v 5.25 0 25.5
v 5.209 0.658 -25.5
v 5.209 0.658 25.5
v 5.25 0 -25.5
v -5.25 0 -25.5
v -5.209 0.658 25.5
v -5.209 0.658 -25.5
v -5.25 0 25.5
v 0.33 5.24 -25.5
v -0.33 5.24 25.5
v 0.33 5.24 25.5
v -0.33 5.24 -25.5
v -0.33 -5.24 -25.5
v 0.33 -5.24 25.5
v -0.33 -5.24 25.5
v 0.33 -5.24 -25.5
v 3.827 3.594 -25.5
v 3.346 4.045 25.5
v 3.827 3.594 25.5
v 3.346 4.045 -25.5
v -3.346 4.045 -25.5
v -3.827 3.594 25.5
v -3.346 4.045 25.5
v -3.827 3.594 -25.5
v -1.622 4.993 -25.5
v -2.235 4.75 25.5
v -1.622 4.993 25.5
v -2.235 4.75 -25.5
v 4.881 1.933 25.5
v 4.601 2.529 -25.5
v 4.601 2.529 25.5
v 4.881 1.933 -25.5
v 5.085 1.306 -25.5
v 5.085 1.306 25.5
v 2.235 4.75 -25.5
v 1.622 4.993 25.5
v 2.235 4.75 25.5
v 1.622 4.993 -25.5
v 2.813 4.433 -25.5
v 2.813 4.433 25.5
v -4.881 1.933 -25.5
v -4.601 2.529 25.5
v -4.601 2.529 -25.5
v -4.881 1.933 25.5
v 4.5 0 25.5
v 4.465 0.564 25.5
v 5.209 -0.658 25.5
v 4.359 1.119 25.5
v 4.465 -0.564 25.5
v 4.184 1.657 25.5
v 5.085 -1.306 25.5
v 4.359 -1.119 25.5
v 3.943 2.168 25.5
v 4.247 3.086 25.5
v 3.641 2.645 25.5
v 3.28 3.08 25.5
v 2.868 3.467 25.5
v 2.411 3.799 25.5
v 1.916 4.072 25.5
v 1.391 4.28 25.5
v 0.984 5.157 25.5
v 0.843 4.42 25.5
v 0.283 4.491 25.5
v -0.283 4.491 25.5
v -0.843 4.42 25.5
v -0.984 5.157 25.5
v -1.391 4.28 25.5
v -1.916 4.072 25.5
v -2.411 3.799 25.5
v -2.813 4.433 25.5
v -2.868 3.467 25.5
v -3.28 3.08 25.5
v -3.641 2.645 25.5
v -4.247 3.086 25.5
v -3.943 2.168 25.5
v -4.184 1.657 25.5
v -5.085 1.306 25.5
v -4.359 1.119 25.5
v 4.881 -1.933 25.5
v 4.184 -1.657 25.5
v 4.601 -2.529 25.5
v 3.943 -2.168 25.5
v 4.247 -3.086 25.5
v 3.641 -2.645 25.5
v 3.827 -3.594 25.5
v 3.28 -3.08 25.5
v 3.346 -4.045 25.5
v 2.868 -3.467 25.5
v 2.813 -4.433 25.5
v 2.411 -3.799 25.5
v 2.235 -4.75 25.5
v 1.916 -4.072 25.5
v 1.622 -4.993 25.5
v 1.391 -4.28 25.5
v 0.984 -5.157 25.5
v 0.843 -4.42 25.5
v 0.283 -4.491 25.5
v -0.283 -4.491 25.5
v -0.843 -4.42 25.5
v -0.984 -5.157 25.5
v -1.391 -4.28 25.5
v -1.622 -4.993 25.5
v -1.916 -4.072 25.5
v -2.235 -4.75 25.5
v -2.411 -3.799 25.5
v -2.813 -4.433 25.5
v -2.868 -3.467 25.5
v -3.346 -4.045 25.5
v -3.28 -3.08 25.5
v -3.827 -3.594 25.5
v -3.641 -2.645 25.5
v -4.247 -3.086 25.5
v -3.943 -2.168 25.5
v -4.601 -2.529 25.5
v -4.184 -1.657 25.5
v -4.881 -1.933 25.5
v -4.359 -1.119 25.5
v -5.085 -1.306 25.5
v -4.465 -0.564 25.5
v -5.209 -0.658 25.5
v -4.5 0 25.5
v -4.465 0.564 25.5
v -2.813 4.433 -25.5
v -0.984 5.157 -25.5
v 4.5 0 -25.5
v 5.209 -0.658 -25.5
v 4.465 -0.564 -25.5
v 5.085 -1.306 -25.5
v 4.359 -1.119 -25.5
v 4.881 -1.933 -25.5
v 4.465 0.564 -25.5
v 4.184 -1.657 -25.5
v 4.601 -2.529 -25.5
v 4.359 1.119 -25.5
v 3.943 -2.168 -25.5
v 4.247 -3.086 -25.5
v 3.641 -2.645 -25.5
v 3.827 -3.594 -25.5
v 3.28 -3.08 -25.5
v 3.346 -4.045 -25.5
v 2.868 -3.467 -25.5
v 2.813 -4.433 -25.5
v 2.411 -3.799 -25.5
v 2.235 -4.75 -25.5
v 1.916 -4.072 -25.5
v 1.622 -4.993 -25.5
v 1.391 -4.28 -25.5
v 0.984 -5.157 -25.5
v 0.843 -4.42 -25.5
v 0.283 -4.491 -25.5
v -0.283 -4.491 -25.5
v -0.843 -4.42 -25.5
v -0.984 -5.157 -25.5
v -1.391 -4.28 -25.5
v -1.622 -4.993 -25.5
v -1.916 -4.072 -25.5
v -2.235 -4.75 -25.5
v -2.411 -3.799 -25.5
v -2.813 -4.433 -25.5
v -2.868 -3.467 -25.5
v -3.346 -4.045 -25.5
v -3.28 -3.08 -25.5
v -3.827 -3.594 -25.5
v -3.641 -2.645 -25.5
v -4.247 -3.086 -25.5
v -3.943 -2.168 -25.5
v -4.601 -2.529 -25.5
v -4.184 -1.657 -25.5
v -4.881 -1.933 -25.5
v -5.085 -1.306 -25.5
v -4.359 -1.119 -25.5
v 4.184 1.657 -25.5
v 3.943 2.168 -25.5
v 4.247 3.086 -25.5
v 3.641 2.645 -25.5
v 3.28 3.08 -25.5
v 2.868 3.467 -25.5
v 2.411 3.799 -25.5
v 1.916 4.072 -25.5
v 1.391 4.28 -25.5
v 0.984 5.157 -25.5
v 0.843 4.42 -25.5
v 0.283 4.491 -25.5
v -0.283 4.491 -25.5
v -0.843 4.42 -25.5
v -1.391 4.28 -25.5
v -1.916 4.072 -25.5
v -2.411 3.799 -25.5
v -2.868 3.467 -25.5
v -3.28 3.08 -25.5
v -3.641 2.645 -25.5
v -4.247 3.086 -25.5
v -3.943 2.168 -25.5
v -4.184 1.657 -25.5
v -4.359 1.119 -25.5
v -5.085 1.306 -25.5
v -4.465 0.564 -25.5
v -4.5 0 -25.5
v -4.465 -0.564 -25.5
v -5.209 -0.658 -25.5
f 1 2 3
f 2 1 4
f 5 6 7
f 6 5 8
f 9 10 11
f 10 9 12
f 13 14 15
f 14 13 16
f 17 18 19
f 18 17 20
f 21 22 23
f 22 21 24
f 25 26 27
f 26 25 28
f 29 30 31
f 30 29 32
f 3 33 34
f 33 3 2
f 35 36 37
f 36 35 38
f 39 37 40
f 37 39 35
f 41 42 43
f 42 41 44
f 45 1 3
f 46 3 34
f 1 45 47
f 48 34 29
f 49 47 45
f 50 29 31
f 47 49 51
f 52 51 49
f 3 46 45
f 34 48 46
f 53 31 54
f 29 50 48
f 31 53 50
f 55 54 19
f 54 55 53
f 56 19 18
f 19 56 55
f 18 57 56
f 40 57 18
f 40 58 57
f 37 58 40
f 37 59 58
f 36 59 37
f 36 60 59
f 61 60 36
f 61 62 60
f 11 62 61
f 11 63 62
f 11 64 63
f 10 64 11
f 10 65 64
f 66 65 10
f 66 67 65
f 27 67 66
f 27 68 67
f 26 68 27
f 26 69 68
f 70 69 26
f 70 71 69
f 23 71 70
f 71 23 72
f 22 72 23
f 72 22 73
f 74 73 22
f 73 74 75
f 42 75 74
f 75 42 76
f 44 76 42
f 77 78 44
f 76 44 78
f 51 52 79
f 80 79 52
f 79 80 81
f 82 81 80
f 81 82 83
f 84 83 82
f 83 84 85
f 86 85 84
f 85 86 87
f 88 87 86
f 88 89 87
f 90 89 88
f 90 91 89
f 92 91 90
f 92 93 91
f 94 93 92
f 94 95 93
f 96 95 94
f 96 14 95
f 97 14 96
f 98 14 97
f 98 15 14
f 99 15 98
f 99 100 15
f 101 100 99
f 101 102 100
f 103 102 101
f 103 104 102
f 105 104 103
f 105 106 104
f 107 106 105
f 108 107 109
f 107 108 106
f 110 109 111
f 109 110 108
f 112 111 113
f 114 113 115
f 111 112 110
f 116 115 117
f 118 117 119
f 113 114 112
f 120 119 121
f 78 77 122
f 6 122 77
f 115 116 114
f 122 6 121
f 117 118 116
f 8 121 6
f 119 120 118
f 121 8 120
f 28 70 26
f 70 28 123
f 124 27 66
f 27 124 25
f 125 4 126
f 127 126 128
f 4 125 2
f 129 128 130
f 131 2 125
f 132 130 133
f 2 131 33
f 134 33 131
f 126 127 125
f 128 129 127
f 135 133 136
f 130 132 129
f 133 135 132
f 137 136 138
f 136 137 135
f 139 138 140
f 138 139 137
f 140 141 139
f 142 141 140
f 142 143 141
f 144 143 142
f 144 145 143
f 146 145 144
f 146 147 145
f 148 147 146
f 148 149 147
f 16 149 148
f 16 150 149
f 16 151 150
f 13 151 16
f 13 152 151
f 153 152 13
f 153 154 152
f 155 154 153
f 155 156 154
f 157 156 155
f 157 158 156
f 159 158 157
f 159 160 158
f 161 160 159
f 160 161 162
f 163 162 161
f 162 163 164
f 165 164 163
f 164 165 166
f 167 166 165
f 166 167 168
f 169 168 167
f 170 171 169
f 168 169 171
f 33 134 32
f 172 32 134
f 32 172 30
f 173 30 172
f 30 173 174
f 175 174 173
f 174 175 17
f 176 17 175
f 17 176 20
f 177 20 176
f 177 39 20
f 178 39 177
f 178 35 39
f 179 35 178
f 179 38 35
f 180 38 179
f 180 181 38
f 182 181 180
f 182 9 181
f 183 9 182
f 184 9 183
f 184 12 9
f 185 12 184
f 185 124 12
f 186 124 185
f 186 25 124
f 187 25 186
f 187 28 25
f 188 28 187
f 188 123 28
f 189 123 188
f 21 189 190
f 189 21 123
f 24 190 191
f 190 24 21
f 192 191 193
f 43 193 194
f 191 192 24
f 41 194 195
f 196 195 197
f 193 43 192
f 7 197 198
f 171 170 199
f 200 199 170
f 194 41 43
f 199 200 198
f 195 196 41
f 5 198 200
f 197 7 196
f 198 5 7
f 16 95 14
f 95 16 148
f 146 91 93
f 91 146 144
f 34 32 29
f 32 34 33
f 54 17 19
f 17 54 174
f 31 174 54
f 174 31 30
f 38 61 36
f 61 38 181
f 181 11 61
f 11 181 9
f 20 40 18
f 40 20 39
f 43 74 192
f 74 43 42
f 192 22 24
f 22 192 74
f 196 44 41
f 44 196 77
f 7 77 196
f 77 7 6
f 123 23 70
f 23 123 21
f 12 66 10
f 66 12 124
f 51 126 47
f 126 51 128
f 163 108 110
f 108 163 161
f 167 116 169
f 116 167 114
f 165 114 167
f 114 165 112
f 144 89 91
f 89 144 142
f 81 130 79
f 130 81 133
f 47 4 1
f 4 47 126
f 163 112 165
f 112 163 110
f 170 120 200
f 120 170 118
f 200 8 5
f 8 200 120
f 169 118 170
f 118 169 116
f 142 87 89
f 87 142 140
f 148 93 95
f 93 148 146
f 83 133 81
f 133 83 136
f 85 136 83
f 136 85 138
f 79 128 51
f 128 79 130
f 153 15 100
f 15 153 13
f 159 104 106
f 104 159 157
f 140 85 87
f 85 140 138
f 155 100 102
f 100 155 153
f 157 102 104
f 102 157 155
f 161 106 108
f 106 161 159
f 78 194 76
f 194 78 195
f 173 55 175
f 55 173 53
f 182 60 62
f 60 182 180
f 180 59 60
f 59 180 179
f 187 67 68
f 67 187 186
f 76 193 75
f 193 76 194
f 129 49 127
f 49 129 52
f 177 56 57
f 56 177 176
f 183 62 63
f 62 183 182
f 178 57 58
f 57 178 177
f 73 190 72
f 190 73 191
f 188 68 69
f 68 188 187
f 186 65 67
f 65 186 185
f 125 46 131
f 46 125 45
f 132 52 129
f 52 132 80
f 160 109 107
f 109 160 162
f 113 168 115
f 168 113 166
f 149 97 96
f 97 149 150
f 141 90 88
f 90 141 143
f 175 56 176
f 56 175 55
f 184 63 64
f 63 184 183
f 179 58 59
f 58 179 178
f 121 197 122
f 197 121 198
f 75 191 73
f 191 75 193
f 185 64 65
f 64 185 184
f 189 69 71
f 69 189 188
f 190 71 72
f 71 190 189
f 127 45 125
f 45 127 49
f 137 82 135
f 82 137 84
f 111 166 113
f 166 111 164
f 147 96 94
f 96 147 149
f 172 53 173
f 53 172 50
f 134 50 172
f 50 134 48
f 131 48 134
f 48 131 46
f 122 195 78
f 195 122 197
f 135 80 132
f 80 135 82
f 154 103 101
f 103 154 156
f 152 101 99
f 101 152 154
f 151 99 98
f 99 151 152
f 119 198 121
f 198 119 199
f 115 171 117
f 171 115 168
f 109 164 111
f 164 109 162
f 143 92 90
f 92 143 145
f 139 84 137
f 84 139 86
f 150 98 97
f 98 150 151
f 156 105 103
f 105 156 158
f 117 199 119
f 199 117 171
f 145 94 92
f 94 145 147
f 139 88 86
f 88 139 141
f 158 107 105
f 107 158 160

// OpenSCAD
$fn = 50;


difference() {
	union() {
		translate(v = [0, 0, -25.5000000000]) {
			cylinder(h = 51, r = 5.2500000000);
		}
	}
	union() {
		translate(v = [0, 0, -100.0000000000]) {
			cylinder(h = 200, r = 4.5000000000);
		}
	}
}
